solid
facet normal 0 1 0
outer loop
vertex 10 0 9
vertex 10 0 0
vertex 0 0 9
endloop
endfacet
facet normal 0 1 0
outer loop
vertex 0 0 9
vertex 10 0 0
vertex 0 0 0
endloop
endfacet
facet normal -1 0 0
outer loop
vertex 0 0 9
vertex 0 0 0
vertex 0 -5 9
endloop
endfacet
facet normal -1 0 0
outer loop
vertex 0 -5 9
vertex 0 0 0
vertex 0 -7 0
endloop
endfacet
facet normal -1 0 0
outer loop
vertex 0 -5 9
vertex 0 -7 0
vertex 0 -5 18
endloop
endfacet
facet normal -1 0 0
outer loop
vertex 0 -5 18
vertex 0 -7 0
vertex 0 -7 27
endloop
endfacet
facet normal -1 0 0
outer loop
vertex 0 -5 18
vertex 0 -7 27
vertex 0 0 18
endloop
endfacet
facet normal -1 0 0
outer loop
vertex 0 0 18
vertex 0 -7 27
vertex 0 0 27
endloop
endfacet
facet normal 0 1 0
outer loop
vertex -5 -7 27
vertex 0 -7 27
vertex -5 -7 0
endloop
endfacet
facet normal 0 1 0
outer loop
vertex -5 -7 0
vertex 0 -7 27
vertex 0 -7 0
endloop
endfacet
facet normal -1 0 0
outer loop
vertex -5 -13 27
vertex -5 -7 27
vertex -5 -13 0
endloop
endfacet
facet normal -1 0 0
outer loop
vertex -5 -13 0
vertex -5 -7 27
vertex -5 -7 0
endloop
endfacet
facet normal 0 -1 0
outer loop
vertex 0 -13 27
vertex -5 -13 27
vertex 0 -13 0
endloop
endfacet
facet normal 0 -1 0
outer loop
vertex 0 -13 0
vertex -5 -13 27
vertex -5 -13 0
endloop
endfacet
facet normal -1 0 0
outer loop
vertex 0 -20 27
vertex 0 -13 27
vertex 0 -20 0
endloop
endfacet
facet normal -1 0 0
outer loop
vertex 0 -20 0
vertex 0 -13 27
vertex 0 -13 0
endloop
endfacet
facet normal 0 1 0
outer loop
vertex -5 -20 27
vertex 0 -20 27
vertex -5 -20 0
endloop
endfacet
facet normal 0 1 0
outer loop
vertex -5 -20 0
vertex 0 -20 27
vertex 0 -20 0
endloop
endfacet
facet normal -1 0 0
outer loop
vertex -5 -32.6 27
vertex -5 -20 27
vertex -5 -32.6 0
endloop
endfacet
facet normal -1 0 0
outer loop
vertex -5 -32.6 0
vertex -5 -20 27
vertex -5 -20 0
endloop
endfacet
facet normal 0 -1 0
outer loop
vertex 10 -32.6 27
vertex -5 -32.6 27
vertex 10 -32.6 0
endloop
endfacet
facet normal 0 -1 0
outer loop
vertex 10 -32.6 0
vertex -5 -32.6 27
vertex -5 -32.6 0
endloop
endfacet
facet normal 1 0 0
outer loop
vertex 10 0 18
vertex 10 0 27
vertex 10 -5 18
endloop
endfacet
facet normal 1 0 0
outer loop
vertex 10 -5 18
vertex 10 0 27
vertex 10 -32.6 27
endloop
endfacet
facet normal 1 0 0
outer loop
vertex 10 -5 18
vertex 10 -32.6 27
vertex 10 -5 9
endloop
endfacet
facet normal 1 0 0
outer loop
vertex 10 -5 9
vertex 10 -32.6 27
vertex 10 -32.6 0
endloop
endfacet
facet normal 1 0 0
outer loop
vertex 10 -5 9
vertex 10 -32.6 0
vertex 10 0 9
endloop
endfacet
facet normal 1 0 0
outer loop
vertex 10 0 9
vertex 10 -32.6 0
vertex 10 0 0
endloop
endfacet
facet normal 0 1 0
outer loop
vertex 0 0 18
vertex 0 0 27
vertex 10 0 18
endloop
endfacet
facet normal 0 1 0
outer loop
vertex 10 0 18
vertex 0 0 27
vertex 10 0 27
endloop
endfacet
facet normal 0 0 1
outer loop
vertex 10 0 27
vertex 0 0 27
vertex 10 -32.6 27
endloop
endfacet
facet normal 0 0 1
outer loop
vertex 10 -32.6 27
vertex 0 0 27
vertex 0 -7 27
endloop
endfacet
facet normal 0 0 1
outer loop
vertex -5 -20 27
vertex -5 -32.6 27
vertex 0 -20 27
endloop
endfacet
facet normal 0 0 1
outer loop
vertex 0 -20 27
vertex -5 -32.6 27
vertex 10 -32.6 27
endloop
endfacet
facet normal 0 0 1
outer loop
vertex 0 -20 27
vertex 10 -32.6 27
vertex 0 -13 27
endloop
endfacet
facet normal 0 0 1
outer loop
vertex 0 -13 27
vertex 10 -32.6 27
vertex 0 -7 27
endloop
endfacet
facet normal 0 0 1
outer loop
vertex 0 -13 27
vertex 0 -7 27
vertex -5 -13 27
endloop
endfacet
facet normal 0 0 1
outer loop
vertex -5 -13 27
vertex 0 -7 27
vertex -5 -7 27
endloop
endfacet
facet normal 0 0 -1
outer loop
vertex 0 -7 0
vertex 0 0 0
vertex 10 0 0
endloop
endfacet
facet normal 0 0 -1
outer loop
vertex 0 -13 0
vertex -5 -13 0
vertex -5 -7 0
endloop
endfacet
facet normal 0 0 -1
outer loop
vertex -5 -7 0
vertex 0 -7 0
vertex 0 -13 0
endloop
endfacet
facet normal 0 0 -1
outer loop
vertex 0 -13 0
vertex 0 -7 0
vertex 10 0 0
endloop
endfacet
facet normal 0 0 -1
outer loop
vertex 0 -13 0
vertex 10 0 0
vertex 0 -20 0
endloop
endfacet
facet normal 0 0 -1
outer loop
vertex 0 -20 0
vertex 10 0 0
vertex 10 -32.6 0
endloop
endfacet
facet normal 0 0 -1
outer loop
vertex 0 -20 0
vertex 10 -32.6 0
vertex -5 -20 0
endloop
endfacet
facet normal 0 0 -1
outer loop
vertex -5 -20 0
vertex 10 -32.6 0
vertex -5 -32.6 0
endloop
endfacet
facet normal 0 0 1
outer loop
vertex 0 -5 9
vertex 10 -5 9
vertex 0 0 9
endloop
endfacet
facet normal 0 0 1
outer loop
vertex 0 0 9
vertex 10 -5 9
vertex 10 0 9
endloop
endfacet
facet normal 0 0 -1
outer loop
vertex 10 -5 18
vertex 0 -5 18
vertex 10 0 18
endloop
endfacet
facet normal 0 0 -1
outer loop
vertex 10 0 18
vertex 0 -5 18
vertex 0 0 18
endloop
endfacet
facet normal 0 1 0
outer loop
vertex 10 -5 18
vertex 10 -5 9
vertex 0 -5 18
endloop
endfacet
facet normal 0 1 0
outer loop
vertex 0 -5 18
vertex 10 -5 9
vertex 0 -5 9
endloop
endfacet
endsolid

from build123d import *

# Parameters (mm, degrees)
EXTRUDE_1_DEPTH     = 27
SKETCH_2_W          = 10
SKETCH_2_H          = 9
CUT_EXTRUDE_1_DEPTH = 5


with BuildPart() as part:
    # 草图1 → 凸台-拉伸1 (new body)
    with BuildSketch(Plane.XY):
        Polygon((0, 0), (10, 0), (10, -32.6), (-5, -32.6), (-5, -20), (0, -20), (0, -13), (-5, -13), (-5, -7), (0, -7), align=None)
    extrude(amount=EXTRUDE_1_DEPTH)

    # 草图2 → 切除-拉伸1 (cut)
    with BuildSketch(Plane(origin=(0, 0, 0), x_dir=(1, 0, 0), z_dir=(0, 1, 0))):
        with Locations((5, -13.5)):
            Rectangle(SKETCH_2_W, SKETCH_2_H)
    extrude(amount=-CUT_EXTRUDE_1_DEPTH, mode=Mode.SUBTRACT)


solid = part.part
